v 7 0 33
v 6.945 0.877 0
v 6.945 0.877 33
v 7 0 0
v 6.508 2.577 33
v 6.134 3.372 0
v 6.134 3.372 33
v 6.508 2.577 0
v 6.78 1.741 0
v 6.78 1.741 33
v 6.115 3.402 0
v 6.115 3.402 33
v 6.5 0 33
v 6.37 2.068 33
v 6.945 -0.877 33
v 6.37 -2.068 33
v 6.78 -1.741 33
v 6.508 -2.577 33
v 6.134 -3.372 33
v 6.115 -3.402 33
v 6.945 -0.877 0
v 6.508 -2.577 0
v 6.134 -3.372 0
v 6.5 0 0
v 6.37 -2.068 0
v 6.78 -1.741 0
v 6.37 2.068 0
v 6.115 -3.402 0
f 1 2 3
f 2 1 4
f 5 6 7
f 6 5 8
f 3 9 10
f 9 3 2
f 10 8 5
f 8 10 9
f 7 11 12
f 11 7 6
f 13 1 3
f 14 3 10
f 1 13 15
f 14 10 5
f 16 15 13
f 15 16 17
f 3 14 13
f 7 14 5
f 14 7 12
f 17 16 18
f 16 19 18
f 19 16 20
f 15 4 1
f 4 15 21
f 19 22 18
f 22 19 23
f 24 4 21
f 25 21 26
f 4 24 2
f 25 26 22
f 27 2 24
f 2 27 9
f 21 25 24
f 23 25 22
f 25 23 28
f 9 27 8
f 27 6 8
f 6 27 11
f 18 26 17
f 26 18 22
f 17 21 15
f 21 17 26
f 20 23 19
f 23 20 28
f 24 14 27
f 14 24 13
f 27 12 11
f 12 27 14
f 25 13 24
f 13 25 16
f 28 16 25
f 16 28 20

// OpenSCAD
$fn = 50;


difference() {
	union() {
		cylinder(h = 33, r = 7.0000000000);
		translate(v = [-13.0000000000, 0, 0]) {
			cylinder(h = 33, r = 7.0000000000);
		}
	}
	union() {
		cylinder(h = 33, r = 3.2500000000);
		cylinder(h = 33, r = 1.8000000000);
		cylinder(h = 33, r = 1.8000000000);
		cylinder(h = 33, r = 1.8000000000);
		translate(v = [-17.5000000000, 0, 0]) {
			hull() {
				translate(v = [-3.7500000000, 0.0000000000, 0]) {
					cylinder(h = 33, r = 10.5000000000);
				}
				translate(v = [3.7500000000, 0.0000000000, 0]) {
					cylinder(h = 33, r = 10.5000000000);
				}
				translate(v = [-3.7500000000, -0.0000000000, 0]) {
					cylinder(h = 33, r = 10.5000000000);
				}
				translate(v = [3.7500000000, -0.0000000000, 0]) {
					cylinder(h = 33, r = 10.5000000000);
				}
			}
		}
		translate(v = [-10.0000000000, 0, 0.0000000000]) {
			cylinder(h = 33, r = 16.5000000000);
		}
	}
}
